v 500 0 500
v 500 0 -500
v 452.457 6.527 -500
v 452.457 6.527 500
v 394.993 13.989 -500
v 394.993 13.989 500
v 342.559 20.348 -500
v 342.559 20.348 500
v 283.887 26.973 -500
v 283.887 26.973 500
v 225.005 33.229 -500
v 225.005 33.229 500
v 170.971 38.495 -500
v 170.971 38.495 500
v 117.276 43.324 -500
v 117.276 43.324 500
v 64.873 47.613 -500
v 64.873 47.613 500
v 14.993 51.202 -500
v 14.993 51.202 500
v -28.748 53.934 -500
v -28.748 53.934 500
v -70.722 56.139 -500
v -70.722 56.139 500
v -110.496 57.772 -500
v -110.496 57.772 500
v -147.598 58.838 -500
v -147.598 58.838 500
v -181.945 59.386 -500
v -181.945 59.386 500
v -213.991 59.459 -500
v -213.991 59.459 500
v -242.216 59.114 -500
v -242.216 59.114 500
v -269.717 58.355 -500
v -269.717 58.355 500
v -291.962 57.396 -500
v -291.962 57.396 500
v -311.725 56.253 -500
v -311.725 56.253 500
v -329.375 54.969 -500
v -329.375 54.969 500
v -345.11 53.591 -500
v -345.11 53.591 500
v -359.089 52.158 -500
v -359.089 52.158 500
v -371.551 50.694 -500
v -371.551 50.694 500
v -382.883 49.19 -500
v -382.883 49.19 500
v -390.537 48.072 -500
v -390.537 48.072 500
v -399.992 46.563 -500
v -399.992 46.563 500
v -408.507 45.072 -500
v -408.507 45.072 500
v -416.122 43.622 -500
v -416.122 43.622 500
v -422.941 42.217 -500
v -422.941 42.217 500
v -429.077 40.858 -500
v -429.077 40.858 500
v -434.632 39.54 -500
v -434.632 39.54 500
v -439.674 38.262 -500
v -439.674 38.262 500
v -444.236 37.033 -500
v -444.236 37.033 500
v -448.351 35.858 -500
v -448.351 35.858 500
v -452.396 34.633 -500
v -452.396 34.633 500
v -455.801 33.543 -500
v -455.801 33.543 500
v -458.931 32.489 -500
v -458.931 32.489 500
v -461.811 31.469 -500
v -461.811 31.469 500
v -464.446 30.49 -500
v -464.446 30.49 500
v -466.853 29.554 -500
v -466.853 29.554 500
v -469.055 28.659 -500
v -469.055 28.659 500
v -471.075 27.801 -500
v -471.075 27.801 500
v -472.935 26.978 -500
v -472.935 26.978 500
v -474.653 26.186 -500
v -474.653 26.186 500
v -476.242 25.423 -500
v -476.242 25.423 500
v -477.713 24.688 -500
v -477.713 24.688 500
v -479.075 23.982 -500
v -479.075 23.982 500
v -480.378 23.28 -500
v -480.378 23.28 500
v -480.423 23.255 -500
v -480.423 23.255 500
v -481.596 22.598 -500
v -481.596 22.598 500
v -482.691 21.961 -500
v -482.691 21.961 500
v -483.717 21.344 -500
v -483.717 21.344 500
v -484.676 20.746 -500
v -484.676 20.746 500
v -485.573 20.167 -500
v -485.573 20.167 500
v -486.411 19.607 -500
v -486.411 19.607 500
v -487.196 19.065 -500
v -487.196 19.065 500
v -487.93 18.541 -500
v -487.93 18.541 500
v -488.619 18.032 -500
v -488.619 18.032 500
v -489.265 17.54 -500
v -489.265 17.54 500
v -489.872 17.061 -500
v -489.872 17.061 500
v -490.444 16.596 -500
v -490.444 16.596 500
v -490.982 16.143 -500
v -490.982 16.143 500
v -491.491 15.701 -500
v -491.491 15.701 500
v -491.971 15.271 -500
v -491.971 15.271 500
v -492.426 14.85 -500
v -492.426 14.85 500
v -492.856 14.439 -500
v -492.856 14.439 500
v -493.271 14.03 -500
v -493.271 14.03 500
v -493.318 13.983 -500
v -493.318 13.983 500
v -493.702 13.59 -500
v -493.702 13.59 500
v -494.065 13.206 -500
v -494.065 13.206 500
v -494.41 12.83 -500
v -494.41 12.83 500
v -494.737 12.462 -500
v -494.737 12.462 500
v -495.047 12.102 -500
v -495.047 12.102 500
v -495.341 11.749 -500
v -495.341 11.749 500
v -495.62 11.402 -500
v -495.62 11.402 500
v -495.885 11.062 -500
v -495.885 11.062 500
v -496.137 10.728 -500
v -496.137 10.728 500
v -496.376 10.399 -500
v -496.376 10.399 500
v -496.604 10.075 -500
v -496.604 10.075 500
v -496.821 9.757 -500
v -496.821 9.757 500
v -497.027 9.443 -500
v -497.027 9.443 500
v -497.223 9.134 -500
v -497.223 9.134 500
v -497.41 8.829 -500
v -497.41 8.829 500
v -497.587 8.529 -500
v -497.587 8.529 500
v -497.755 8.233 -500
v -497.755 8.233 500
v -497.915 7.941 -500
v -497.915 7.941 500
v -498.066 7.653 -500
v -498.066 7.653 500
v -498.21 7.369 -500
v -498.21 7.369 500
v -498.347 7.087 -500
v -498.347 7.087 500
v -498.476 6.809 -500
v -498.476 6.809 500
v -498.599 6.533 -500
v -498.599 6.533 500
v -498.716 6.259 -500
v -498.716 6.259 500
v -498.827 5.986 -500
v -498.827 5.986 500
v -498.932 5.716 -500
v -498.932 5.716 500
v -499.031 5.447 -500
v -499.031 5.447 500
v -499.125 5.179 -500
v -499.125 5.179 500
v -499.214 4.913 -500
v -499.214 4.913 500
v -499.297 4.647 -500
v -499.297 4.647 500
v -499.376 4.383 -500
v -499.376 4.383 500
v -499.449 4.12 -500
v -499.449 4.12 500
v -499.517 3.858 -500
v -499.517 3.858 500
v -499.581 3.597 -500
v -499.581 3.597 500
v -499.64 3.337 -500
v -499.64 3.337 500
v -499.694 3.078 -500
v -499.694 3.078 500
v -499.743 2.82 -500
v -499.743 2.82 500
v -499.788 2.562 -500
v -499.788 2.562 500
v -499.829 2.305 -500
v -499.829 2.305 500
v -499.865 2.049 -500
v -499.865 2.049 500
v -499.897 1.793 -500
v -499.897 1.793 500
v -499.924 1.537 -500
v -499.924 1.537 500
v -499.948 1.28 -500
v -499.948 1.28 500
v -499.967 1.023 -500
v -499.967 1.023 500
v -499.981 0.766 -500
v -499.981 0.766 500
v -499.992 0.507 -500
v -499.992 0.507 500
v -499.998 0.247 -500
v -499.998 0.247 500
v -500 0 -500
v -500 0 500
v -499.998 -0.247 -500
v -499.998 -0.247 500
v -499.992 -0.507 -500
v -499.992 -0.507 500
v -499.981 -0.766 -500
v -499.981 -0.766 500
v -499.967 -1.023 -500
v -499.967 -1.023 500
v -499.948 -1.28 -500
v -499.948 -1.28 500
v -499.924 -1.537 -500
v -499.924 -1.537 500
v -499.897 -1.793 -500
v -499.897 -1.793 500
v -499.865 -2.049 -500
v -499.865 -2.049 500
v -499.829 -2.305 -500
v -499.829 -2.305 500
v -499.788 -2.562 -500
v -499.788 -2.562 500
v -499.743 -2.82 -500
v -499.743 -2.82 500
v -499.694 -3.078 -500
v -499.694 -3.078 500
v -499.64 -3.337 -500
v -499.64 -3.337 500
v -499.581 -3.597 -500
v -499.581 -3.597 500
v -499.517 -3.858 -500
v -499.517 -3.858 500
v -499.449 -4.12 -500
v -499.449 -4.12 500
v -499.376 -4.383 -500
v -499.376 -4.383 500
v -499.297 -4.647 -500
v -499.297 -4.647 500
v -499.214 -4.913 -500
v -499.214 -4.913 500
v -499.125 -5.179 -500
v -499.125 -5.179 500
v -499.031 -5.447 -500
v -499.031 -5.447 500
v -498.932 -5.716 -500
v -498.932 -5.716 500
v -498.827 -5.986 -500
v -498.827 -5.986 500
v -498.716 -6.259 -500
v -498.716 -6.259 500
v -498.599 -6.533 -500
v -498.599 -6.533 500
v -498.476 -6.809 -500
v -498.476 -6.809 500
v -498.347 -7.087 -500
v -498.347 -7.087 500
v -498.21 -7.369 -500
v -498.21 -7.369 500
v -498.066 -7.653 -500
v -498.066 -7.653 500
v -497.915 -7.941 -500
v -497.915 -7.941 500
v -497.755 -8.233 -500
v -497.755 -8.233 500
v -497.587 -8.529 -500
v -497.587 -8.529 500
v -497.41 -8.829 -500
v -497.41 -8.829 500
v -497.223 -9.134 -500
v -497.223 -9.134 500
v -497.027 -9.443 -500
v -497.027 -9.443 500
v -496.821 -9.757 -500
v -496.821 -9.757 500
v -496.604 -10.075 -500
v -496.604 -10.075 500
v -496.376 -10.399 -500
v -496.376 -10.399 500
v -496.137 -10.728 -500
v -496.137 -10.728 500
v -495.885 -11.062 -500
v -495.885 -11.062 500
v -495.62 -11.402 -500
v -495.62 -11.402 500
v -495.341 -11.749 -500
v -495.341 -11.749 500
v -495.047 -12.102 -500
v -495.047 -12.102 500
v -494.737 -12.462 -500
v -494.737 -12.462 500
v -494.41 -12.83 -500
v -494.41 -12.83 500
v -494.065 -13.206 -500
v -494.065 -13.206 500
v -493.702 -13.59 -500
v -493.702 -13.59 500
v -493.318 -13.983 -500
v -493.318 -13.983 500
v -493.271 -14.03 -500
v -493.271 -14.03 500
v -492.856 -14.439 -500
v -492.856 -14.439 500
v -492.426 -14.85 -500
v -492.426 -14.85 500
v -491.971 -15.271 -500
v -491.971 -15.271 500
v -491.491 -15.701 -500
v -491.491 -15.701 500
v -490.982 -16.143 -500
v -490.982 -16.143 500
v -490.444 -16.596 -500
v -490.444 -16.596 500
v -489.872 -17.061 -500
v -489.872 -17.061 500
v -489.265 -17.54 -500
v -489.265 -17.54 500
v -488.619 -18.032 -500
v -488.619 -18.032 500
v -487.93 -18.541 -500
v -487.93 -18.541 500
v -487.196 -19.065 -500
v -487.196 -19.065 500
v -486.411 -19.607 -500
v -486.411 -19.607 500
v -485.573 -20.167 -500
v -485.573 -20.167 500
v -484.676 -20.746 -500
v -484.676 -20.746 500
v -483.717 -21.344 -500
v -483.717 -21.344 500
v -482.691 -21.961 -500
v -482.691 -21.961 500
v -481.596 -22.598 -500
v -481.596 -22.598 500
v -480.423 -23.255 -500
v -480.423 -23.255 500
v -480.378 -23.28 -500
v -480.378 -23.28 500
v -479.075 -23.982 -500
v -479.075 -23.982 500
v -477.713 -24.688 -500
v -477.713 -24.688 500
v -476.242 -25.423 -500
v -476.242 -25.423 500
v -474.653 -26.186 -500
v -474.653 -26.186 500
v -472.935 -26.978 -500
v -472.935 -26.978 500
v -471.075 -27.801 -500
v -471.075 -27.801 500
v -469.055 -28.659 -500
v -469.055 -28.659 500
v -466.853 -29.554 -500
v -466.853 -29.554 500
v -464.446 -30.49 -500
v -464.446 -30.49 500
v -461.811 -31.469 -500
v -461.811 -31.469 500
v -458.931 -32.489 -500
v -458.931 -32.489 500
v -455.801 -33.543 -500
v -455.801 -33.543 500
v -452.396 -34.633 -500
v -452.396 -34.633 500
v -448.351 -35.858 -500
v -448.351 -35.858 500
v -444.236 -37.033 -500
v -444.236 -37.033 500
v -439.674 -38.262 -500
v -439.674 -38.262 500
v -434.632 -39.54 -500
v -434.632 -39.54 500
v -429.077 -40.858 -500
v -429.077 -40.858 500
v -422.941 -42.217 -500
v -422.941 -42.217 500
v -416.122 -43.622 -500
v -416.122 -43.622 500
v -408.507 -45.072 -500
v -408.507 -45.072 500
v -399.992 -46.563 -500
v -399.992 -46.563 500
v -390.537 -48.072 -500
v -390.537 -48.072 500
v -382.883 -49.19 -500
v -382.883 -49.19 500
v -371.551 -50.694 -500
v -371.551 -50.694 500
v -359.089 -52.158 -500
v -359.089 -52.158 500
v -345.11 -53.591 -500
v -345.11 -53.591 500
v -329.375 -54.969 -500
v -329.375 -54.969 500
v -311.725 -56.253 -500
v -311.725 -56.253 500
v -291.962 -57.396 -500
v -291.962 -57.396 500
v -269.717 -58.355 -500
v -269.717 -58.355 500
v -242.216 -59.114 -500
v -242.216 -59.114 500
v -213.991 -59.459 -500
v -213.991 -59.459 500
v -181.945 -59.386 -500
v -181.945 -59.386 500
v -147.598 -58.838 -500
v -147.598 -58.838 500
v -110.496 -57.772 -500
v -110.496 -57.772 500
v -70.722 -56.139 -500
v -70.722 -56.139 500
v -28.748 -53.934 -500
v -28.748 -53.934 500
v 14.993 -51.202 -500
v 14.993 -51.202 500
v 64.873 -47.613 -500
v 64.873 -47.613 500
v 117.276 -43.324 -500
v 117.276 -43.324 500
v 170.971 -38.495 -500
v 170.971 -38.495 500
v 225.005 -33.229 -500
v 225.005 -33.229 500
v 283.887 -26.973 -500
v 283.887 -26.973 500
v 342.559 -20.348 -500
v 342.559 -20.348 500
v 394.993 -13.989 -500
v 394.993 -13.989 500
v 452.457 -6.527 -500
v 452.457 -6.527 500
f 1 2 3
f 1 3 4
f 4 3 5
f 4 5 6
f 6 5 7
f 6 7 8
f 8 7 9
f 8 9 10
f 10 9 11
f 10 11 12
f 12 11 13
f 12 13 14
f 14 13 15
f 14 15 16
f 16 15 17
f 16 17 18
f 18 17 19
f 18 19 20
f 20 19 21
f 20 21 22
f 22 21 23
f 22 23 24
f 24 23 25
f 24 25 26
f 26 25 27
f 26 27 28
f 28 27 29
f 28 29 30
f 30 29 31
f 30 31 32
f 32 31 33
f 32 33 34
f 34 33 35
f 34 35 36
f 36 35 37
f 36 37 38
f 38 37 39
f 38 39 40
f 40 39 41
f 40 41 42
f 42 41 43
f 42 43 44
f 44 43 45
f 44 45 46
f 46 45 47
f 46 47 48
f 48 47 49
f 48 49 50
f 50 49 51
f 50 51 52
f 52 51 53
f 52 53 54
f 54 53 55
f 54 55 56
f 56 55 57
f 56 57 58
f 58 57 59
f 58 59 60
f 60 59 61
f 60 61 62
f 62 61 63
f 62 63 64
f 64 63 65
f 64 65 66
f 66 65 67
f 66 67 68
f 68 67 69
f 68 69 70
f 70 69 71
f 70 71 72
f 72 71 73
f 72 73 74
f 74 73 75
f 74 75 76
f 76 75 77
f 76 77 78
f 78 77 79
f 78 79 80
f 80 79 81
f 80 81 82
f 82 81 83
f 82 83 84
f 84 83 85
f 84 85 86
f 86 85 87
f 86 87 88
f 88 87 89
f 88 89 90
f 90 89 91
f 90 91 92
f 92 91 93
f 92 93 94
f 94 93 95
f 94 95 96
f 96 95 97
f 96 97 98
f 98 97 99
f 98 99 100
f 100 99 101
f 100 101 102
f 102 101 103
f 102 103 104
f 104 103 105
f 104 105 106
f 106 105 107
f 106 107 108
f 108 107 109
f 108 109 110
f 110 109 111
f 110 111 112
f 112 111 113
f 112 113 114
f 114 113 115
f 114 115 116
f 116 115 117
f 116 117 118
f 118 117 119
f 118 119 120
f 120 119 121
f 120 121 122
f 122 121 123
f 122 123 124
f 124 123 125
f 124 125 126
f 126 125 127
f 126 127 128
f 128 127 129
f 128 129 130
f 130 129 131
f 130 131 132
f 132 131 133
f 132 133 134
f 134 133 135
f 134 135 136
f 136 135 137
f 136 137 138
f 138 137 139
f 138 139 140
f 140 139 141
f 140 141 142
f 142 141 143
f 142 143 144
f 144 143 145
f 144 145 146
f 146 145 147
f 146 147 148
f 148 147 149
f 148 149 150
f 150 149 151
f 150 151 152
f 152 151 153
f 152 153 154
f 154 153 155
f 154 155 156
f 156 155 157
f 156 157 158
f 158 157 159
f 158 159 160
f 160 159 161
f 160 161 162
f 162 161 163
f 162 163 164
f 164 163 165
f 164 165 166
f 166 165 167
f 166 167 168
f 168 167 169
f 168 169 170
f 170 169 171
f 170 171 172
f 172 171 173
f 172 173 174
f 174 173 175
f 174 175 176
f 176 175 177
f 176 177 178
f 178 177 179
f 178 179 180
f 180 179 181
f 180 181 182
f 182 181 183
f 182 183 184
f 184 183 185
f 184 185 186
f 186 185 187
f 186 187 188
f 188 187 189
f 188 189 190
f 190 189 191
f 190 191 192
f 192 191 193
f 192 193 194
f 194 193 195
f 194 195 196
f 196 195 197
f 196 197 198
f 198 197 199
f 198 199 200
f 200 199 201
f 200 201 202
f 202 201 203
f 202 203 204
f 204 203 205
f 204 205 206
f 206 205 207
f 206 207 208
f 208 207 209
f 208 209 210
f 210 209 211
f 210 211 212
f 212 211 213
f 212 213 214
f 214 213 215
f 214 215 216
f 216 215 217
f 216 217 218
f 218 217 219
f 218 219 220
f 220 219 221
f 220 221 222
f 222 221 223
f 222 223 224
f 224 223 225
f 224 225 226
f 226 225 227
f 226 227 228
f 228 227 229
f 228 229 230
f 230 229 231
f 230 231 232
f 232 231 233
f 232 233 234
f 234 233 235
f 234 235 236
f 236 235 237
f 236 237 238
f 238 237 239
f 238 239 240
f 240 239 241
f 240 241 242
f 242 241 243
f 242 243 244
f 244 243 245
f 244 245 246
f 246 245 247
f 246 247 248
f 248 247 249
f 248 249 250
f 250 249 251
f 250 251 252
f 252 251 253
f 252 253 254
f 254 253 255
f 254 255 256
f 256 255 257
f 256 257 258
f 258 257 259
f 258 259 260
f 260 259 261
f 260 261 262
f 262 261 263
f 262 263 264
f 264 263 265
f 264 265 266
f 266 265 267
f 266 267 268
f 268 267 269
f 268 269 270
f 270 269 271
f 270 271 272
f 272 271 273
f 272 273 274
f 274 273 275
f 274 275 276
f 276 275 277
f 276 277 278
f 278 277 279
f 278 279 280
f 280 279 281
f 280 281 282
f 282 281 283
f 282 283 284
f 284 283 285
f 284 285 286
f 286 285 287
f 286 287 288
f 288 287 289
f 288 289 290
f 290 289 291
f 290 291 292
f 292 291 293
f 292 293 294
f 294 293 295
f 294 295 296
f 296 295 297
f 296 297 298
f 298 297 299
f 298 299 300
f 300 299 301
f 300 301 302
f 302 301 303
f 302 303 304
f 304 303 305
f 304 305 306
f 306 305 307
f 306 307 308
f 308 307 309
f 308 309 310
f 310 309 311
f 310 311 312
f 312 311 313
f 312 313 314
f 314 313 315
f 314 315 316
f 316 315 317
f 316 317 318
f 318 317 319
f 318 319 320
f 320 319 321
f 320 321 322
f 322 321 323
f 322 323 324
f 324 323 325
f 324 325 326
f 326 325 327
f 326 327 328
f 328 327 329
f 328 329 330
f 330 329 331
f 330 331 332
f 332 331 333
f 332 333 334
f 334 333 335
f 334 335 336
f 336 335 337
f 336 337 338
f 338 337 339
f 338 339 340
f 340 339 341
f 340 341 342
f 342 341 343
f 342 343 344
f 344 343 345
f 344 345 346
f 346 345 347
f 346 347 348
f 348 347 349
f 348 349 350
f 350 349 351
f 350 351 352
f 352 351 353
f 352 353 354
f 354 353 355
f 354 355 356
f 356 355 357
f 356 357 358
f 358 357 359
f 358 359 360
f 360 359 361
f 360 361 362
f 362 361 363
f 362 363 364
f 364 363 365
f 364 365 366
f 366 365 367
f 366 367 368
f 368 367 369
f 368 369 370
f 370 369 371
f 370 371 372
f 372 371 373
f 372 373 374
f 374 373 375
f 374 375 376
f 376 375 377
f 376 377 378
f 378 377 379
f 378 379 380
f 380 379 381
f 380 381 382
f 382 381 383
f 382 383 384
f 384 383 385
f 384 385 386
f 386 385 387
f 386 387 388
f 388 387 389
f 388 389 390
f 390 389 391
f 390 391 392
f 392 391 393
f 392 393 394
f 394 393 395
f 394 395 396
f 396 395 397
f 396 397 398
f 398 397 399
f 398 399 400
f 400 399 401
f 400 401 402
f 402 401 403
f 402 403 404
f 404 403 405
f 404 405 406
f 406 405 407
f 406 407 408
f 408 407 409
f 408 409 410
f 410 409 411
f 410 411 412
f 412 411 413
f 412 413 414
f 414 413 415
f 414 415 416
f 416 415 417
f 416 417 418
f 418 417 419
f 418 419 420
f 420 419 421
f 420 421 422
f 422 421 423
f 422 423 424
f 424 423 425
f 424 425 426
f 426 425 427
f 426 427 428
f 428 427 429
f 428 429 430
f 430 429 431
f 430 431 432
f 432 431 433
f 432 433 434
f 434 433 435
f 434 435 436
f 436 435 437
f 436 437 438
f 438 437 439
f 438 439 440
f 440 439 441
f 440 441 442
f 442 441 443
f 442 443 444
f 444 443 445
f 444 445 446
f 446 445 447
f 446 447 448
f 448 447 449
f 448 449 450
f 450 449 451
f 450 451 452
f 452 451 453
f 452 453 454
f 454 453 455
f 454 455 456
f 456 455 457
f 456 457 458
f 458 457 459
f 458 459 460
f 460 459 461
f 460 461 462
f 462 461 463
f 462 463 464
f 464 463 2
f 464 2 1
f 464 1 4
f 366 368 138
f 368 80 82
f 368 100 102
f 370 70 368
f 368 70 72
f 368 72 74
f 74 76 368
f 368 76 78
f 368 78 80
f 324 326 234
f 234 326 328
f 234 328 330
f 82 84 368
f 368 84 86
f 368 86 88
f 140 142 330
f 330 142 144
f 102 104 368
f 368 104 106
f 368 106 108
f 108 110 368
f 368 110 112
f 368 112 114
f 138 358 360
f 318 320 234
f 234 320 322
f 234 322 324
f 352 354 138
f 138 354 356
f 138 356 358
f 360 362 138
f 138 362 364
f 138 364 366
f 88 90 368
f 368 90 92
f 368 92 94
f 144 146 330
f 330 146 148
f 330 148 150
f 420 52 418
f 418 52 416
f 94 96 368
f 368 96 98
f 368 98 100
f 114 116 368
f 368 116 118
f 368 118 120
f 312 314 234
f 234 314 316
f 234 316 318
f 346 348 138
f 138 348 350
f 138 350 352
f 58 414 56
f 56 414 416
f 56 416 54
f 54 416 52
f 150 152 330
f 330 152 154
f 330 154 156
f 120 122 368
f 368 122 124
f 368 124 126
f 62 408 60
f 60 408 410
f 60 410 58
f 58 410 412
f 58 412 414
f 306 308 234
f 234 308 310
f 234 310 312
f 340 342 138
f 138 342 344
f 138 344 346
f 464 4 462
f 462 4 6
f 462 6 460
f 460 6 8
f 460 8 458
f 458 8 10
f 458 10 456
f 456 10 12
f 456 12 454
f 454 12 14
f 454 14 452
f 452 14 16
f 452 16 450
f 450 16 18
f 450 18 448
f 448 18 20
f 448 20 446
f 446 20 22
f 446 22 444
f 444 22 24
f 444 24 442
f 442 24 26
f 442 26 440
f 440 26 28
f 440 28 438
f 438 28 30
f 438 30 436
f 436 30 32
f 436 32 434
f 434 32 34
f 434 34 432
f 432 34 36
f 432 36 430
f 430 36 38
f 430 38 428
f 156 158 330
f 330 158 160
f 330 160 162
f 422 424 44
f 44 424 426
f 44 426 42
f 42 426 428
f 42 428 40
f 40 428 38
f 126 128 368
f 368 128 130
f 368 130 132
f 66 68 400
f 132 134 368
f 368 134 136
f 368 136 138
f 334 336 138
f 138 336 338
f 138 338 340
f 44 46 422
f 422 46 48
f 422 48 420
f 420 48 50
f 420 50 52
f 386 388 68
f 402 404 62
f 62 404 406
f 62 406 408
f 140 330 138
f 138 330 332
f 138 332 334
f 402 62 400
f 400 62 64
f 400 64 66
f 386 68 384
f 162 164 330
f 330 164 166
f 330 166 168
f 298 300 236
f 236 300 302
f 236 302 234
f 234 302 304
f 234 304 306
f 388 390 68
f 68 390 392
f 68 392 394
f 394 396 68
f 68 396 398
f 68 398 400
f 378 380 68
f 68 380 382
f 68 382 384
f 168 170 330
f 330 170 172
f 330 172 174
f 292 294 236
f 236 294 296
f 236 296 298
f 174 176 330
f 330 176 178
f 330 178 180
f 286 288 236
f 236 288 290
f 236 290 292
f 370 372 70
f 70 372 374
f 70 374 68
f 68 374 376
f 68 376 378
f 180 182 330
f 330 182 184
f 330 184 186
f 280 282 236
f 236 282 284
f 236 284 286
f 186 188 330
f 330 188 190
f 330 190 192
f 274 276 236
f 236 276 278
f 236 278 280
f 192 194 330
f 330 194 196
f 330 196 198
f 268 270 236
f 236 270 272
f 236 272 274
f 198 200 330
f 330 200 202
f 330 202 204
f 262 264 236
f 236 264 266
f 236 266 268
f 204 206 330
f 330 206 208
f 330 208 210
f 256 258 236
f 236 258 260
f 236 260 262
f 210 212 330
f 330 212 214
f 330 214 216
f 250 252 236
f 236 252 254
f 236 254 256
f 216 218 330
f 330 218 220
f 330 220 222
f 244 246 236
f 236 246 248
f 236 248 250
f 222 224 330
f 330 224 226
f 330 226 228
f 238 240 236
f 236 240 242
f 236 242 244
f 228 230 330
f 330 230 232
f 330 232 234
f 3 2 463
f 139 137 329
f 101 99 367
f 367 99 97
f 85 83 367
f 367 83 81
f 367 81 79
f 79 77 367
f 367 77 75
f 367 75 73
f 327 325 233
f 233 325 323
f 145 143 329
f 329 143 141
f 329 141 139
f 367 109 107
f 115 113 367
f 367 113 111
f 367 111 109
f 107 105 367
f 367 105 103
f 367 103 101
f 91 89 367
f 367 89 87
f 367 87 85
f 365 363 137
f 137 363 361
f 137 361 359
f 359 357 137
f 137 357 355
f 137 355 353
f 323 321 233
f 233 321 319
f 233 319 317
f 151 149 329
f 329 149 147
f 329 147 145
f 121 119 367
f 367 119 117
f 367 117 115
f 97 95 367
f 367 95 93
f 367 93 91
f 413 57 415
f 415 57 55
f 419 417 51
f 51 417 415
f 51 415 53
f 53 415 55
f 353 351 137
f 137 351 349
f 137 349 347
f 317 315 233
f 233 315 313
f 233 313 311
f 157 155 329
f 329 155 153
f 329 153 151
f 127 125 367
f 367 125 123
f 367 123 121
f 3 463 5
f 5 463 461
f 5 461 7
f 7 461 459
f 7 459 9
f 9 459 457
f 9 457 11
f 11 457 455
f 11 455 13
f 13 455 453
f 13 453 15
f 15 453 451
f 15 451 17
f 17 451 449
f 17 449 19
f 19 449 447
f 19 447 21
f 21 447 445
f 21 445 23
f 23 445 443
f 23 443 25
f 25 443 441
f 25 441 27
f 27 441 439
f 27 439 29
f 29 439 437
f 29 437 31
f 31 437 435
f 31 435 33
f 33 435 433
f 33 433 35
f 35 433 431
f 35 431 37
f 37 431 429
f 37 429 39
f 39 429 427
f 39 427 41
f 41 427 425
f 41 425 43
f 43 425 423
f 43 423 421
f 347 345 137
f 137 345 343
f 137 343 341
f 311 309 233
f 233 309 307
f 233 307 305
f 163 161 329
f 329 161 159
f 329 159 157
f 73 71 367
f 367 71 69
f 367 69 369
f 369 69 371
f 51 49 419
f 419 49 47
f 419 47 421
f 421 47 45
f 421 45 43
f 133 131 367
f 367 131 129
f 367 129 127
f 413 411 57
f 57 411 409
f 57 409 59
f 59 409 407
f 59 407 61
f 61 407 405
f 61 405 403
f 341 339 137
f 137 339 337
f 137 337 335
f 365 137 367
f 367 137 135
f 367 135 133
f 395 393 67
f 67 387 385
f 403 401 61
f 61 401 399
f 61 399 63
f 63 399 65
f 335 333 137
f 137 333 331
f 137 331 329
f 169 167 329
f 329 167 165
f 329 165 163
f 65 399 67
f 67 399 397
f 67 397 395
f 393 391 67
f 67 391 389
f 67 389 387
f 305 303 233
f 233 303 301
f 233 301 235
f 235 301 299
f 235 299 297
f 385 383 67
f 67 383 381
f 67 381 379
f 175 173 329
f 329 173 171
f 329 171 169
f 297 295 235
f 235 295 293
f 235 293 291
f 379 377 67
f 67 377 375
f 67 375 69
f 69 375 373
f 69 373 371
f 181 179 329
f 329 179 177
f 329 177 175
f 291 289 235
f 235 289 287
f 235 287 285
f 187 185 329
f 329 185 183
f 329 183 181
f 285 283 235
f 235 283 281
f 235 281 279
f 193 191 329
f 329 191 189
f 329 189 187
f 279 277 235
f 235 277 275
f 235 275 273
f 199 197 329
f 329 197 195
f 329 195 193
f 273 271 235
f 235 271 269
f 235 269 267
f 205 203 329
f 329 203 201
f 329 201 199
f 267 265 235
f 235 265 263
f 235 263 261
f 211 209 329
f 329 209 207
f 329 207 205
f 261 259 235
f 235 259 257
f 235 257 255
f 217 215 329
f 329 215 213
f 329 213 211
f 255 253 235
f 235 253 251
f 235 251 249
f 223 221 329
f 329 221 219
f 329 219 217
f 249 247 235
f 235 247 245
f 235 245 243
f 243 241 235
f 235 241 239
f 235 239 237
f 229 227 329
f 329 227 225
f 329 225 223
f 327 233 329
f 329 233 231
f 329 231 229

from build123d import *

# Parameters (mm, degrees)
BOSS_EXTRUDE1_DEPTH = 0.5
SCALE1_SCALE        = 1000


with BuildPart() as part:
    # Sketch1 → Boss-Extrude1 (new, symmetric)
    with BuildSketch(Plane(origin=(0, 0, 0), x_dir=(-1, 0, 0), z_dir=(0, 0, -1))):
        with BuildLine():
            add(Edge.make_bspline(
                [(0, 0), (-5.5e-08, 0.000888466), (0.000147782, 0.002843842), (0.000947089, 0.006041247), (0.002941878, 0.009713487), (0.006774101, 0.014457085), (0.012556949, 0.019216186), (0.021110429, 0.024428475), (0.034866193, 0.03059158), (0.055431204, 0.037455368), (0.089828348, 0.04550977), (0.139755341, 0.052902373), (0.203428826, 0.057926975), (0.27656322, 0.060001118), (0.353340263, 0.059233405), (0.429257805, 0.056493131), (0.506378652, 0.05199658), (0.581338667, 0.046568611), (0.659622586, 0.039668579), (0.732235268, 0.032719991), (0.813983542, 0.023695093), (0.880399061, 0.016071042), (0.949075665, 0.007054301), (0.982784205, 0.002442523), (1, 0)],
                knots=[0, 0, 0, 0, 0, 0.003158851, 0.007000711, 0.011625702, 0.014778643, 0.02484247, 0.03354265, 0.047310358, 0.068440823, 0.102185964, 0.159338811, 0.227557949, 0.295777086, 0.363996223, 0.432215362, 0.5004345, 0.568653639, 0.636872777, 0.705091915, 0.773311052, 0.84153019, 0.90974933, 0.90974933, 0.90974933, 0.90974933, 0.90974933], degree=4))
            add(Edge.make_bspline(
                [(0, 0), (-5.5e-08, -0.000888466), (0.000147782, -0.002843842), (0.000947089, -0.006041247), (0.002941878, -0.009713487), (0.006774101, -0.014457085), (0.012556949, -0.019216186), (0.021110429, -0.024428475), (0.034866193, -0.03059158), (0.055431204, -0.037455368), (0.089828348, -0.04550977), (0.139755341, -0.052902373), (0.203428826, -0.057926975), (0.27656322, -0.060001118), (0.353340263, -0.059233405), (0.429257805, -0.056493131), (0.506378652, -0.05199658), (0.581338667, -0.046568611), (0.659622586, -0.039668579), (0.732235268, -0.032719991), (0.813983542, -0.023695093), (0.880399061, -0.016071042), (0.949075665, -0.007054301), (0.982784205, -0.002442523), (1, 0)],
                knots=[0, 0, 0, 0, 0, 0.003158851, 0.007000711, 0.011625702, 0.014778643, 0.02484247, 0.03354265, 0.047310358, 0.068440823, 0.102185964, 0.159338811, 0.227557949, 0.295777086, 0.363996223, 0.432215362, 0.5004345, 0.568653639, 0.636872777, 0.705091915, 0.773311052, 0.84153019, 0.90974933, 0.90974933, 0.90974933, 0.90974933, 0.90974933], degree=4))
        make_face()
    extrude(amount=BOSS_EXTRUDE1_DEPTH, both=True)


with BuildPart() as part_1:
    # Scale1: scaled about (0, 0, 0)
    add(part.part.scale(SCALE1_SCALE))


with BuildPart() as body_2:
    # Mirror2: mirrored copy
    add(part_1.part.mirror(Plane(origin=(0, 0, 0), x_dir=(0, 0, 1), z_dir=(1, 0, 0))))


with BuildPart() as body_2_1:
    # Body-Move/Copy1: moved
    add(body_2.part.moved(Location((-500, 0, 0))))


solid = body_2_1.part
